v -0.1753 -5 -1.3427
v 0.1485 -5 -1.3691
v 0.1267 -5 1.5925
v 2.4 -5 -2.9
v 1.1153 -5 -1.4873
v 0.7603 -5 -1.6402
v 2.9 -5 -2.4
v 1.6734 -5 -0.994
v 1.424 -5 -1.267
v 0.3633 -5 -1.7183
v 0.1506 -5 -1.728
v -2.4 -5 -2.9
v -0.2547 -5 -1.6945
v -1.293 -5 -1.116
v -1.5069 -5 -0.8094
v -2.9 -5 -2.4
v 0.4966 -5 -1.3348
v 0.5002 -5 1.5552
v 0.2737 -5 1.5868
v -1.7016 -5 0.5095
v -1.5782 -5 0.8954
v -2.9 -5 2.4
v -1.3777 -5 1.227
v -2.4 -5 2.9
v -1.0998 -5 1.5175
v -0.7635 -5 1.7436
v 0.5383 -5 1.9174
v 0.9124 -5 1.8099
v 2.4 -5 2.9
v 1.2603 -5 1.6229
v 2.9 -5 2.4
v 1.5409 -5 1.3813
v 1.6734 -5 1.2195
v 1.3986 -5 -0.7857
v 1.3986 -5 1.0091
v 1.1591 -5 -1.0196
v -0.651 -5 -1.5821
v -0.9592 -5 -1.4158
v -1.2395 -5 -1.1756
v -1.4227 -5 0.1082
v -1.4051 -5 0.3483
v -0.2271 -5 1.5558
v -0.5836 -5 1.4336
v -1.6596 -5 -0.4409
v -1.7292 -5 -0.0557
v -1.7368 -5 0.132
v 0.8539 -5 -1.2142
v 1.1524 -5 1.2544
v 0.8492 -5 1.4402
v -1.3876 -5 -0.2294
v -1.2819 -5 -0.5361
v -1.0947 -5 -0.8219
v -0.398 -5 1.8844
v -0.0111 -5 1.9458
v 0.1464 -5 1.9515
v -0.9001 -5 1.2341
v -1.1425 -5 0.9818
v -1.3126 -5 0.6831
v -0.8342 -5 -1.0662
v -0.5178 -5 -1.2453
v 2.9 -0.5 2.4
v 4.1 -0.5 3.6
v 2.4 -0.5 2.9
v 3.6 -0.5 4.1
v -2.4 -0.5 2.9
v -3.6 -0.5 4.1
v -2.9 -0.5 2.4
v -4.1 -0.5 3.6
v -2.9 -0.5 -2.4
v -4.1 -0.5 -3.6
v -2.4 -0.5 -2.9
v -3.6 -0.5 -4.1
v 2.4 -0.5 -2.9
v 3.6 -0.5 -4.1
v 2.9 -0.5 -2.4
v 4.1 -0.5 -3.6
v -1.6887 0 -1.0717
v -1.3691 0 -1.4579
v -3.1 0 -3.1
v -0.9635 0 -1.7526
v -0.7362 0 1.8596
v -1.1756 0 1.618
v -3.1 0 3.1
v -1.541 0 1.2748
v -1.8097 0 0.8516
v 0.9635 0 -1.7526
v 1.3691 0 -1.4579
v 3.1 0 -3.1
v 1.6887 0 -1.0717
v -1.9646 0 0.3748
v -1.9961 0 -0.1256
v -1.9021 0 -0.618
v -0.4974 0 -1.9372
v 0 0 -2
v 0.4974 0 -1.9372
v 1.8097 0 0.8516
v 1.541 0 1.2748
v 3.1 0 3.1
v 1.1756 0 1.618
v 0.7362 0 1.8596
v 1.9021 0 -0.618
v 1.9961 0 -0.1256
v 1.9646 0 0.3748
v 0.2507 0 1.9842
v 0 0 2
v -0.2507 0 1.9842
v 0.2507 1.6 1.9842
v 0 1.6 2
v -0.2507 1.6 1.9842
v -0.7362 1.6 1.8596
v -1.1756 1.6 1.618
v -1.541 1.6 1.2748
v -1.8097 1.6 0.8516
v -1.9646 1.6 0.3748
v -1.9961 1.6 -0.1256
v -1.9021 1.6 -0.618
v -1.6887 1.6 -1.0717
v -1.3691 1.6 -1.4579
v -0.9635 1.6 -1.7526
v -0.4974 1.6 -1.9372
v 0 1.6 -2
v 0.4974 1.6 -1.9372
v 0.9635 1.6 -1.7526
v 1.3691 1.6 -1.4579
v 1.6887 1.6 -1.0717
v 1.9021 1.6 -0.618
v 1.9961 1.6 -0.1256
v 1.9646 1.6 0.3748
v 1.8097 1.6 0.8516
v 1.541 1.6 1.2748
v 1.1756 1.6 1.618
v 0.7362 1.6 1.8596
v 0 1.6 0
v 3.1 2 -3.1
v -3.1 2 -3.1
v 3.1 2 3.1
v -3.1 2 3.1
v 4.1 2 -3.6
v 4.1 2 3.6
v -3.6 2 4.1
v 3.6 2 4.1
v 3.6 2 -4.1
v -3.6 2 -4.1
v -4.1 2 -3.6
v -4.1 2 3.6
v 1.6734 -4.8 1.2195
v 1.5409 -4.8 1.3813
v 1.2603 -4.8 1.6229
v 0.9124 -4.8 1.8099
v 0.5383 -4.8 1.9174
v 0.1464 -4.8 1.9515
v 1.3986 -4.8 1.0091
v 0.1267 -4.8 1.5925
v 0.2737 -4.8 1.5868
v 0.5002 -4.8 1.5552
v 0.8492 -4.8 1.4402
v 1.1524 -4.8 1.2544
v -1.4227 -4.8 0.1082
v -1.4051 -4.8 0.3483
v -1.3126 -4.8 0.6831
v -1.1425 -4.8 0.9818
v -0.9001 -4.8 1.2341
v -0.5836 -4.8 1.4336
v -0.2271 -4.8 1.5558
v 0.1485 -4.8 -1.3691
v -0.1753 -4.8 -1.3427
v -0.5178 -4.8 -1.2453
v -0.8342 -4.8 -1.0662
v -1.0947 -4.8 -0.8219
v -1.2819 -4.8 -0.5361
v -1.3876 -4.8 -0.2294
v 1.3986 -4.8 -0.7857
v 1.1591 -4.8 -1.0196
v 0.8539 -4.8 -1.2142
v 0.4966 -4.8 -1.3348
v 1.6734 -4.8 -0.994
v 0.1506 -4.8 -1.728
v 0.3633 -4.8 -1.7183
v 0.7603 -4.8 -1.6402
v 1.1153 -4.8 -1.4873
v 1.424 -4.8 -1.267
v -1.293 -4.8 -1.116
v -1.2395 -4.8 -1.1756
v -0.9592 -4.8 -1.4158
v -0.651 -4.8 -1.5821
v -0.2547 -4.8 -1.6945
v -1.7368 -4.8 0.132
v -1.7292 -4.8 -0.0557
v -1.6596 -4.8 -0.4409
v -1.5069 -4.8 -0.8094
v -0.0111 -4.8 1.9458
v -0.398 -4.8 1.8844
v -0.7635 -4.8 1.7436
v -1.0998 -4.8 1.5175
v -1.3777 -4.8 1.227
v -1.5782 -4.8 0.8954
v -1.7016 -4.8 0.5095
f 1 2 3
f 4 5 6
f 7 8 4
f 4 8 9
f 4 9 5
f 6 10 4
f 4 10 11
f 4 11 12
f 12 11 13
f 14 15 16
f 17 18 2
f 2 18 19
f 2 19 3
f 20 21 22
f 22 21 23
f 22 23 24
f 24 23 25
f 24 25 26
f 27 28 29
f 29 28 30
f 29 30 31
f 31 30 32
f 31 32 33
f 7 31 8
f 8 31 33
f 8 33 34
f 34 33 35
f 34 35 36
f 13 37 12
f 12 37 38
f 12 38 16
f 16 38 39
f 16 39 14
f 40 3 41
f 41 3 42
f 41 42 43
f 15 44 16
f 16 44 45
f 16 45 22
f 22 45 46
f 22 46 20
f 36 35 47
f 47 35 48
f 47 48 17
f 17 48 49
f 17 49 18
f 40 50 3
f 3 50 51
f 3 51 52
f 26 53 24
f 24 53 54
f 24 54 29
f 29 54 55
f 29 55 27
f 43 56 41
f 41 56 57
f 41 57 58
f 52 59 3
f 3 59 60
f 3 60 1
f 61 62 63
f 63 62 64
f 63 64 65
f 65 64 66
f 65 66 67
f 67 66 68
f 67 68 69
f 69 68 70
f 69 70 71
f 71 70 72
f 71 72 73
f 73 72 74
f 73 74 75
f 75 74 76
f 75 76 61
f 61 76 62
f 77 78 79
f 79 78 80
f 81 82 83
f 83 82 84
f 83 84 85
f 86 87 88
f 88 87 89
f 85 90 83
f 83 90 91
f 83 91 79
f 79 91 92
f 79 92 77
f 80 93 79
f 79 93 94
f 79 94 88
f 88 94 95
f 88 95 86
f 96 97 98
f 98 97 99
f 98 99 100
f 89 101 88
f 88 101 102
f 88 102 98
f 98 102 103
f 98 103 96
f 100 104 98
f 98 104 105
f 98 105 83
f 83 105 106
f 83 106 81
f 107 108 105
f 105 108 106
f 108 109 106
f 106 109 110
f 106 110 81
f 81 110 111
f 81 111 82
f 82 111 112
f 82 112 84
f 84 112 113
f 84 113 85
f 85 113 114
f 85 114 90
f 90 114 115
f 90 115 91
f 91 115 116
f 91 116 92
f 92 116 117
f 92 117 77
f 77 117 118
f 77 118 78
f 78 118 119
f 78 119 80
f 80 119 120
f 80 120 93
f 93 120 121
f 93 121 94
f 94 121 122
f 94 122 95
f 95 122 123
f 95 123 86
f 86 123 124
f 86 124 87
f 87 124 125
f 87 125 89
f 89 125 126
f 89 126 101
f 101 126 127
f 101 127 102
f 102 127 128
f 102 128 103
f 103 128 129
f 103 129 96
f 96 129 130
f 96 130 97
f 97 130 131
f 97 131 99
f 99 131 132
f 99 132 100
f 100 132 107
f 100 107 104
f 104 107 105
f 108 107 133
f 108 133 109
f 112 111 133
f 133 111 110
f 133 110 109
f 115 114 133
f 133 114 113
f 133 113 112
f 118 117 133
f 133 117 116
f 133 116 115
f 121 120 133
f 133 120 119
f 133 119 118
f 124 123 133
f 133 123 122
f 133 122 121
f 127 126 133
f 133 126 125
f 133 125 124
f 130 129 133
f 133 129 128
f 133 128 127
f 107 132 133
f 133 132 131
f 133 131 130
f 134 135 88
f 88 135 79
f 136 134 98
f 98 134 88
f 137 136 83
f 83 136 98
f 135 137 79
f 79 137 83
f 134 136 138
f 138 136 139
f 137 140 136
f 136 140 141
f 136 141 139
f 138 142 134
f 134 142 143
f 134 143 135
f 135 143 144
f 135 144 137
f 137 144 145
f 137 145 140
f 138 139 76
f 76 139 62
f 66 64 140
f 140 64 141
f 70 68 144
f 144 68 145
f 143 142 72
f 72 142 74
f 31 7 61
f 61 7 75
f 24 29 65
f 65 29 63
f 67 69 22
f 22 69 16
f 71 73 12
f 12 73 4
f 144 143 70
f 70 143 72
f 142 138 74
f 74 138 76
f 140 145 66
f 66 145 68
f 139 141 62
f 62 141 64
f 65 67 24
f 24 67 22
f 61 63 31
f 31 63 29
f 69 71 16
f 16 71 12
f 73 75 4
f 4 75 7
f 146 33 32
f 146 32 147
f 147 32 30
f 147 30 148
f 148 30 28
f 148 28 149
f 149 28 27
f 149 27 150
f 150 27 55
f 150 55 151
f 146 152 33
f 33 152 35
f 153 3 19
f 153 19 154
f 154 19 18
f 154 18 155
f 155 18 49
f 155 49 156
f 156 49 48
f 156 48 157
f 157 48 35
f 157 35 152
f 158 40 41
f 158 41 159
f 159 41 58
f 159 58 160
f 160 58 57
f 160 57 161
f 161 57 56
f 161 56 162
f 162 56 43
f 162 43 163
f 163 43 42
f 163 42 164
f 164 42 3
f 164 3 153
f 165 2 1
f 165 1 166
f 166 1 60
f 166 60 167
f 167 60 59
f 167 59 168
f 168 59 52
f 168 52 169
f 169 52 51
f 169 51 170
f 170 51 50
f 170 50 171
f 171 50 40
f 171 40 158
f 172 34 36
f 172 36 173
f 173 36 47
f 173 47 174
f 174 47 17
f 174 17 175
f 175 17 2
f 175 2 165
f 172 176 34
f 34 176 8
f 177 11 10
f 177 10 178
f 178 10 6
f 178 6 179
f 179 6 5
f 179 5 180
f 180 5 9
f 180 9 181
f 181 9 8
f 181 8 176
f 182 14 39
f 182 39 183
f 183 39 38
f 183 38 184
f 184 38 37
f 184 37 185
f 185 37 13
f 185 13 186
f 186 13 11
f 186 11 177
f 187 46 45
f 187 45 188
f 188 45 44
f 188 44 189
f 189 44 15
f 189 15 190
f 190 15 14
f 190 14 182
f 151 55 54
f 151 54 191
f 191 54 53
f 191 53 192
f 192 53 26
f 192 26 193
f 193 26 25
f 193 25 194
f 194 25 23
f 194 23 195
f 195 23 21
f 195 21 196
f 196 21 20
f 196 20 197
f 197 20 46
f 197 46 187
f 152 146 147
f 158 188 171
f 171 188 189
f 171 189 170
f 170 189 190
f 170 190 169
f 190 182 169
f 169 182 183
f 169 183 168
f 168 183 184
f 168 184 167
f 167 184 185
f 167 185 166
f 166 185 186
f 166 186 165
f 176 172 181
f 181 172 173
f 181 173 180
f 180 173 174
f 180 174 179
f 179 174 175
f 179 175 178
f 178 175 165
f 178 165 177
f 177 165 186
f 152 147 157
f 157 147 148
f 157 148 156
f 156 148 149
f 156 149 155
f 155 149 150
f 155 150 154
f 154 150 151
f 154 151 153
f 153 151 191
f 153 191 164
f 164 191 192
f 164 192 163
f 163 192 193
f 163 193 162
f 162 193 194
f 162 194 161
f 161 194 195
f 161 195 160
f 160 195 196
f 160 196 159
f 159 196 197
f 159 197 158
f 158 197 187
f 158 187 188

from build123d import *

# Parameters (mm, degrees)
SKETCH1_R           = 2
BOSS_EXTRUDE1_DEPTH = 1.6
SKETCH1_3_W         = 8.2
SKETCH1_3_H         = 8.2
SKETCH1_3_W_2       = 6.2
SKETCH1_3_H_2       = 6.2
BOSS_EXTRUDE2_DEPTH = 2
SKETCH1_4_W         = 8.2
SKETCH1_4_H         = 8.2
BOSS_EXTRUDE3_DEPTH = 0.5
SKETCH3_W           = 5.8
SKETCH3_H           = 5.8
BOSS_EXTRUDE4_DEPTH = 4.5
CHAMFER1_SIZE       = 0.5
CUT_EXTRUDE1_DEPTH  = 0.2


with BuildPart() as part:
    # Sketch1 → Boss-Extrude1 (new body)
    with BuildSketch(Plane(origin=(0, 0, 0), x_dir=(1, 0, 0), z_dir=(0, 1, 0))):
        Circle(SKETCH1_R)
    extrude(amount=BOSS_EXTRUDE1_DEPTH)



with BuildPart() as body_2:
    # Sketch1<3> → Boss-Extrude2 (new body)
    with BuildSketch(Plane(origin=(0, 0, 0), x_dir=(1, 0, 0), z_dir=(0, 1, 0))):
        Rectangle(SKETCH1_3_W, SKETCH1_3_H)
        Rectangle(SKETCH1_3_W_2, SKETCH1_3_H_2, mode=Mode.SUBTRACT)
    extrude(amount=BOSS_EXTRUDE2_DEPTH)


with BuildPart() as part_1:
    add(part.part)

    add(body_2.part)  # Boss-Extrude3 merges body 2
    # Sketch1<4> → Boss-Extrude3 (add)
    with BuildSketch(Plane(origin=(0, 0, 0), x_dir=(1, 0, 0), z_dir=(0, 1, 0))):
        Rectangle(SKETCH1_4_W, SKETCH1_4_H)
    extrude(amount=-BOSS_EXTRUDE3_DEPTH)

    # Sketch3 → Boss-Extrude4 (add)
    with BuildSketch(Plane.XZ.offset(0.5)):
        Rectangle(SKETCH3_W, SKETCH3_H)
    extrude(amount=BOSS_EXTRUDE4_DEPTH)

    # Chamfer1
    chamfer1_edges = [part_1.edges().sort_by_distance(p)[0] for p in [
        (-4.1, 0.75, -4.1),
        (4.1, 0.75, -4.1),
        (-4.1, 0.75, 4.1),
        (4.1, 0.75, 4.1),
        (-2.9, -2.75, 2.9),
        (2.9, -2.75, 2.9),
        (-2.9, -2.75, -2.9),
        (2.9, -2.75, -2.9),
    ]]
    chamfer(chamfer1_edges, length=CHAMFER1_SIZE)

    # Sketch4 → Cut-Extrude1 (cut)
    with BuildSketch(Plane.XZ.offset(5)):
        with BuildLine():
            Line((1.673414591, 1.219479822), (1.398574847, 1.009143283))
            add(Edge.make_bspline(
                [(1.398574847, 1.009143283), (1.378968959, 1.032509253), (1.340021512, 1.078926169), (1.27736231, 1.144105713), (1.212060667, 1.205170975), (1.144141545, 1.262412854), (1.072382426, 1.31382962), (0.998521627, 1.362100723), (0.921323582, 1.405368461), (0.814571847, 1.457831447), (0.674923999, 1.512577602), (0.49912916, 1.558480834), (0.315618062, 1.587702009), (0.190420462, 1.590866851), (0.126739911, 1.592476617)],
                knots=[0, 0, 0, 0, 0.757959112, 1.505699292, 2.245454638, 2.979532153, 3.711538275, 4.438200793, 5.171680507, 5.909471876, 7.393775596, 8.890124382, 10.418191784, 12, 12, 12, 12], degree=3))
            add(Edge.make_bspline(
                [(0.126739911, 1.592476617), (0.091656612, 1.592072654), (0.021815619, 1.591268478), (-0.081832854, 1.580659353), (-0.183545905, 1.565748143), (-0.283257371, 1.54362282), (-0.38084033, 1.515650201), (-0.476932732, 1.482224787), (-0.570143332, 1.440869947), (-0.66176157, 1.395161687), (-0.749540781, 1.343534242), (-0.832595829, 1.28722089), (-0.910623797, 1.226851794), (-0.983686409, 1.162200688), (-1.051858357, 1.093558727), (-1.114645668, 1.020194386), (-1.171831078, 0.942342212), (-1.224548103, 0.861028804), (-1.271760837, 0.776491013), (-1.311290716, 0.688415942), (-1.346295838, 0.598311839), (-1.373995081, 0.505160679), (-1.395919598, 0.409617913), (-1.411047261, 0.311427125), (-1.421535732, 0.210793445), (-1.422335909, 0.142584133), (-1.422739255, 0.108201777)],
                knots=[0, 0, 0, 0, 1.054917814, 2.100044995, 3.131103042, 4.146048494, 5.169673617, 6.183595914, 7.203665975, 8.234915748, 9.262203917, 10.264457458, 11.251630812, 12.227803204, 13.197192746, 14.159520551, 15.12972552, 16.100847026, 17.073214652, 18.039054194, 19.002613845, 19.979014051, 20.95965708, 21.949030935, 22.966165397, 24, 24, 24, 24], degree=3))
            add(Edge.make_bspline(
                [(-1.422739255, 0.108201777), (-1.421477436, 0.056470457), (-1.419000022, -0.045097128), (-1.396951688, -0.193867738), (-1.363446597, -0.336388412), (-1.31323102, -0.471768254), (-1.251311969, -0.601676612), (-1.173071358, -0.723915466), (-1.08245482, -0.84033203), (-0.978180401, -0.948174978), (-0.863774585, -1.046688703), (-0.741026673, -1.133439285), (-0.610242385, -1.205754167), (-0.472865755, -1.265930114), (-0.327839641, -1.312186842), (-0.175424839, -1.344750965), (-0.015952844, -1.365993146), (0.093016556, -1.368026834), (0.148474687, -1.369061845)],
                knots=[0, 0, 0, 0, 1.029171465, 2.020641659, 2.987623507, 3.938342917, 4.889210282, 5.84687017, 6.821220943, 7.821438502, 8.827599549, 9.822697543, 10.807740252, 11.797342354, 12.80366471, 13.83203677, 14.896651826, 16, 16, 16, 16], degree=3))
            add(Edge.make_bspline(
                [(0.148474687, -1.369061845), (0.209577376, -1.367373065), (0.329842085, -1.364049143), (0.506210111, -1.335889893), (0.675045877, -1.290231976), (0.836358463, -1.226334053), (0.98969311, -1.143268765), (1.13528977, -1.042570888), (1.27327134, -0.923282555), (1.356242623, -0.832199427), (1.398574847, -0.785728511)],
                knots=[0, 0, 0, 0, 1.028121516, 2.023589091, 2.998037872, 3.967518031, 4.937445131, 5.927275754, 6.942489185, 8, 8, 8, 8], degree=3))
            Line((1.398574847, -0.785728511), (1.673414591, -0.993961685))
            add(Edge.make_bspline(
                [(1.673414591, -0.993961685), (1.651296481, -1.022500136), (1.607166206, -1.079440343), (1.535708189, -1.159712052), (1.460430891, -1.235216088), (1.380775181, -1.305343709), (1.29765739, -1.371498175), (1.209585077, -1.431800006), (1.117716045, -1.48709089), (1.022361566, -1.537717815), (0.923622953, -1.582635062), (0.821618518, -1.62108883), (0.716787943, -1.654213719), (0.609126434, -1.681465656), (0.498410678, -1.70273674), (0.385040203, -1.716956415), (0.268770328, -1.726698329), (0.190328907, -1.727586245), (0.150578052, -1.728036204)],
                knots=[0, 0, 0, 0, 0.986787822, 1.968848986, 2.935600012, 3.899624008, 4.868462664, 5.837806735, 6.815139263, 7.798259679, 8.787526145, 9.778297419, 10.776456485, 11.791383307, 12.812564526, 13.85620153, 14.913611965, 16, 16, 16, 16], degree=3))
            add(Edge.make_bspline(
                [(0.150578052, -1.728036204), (0.112934385, -1.727774211), (0.038498695, -1.727256153), (-0.071400056, -1.718863986), (-0.178389637, -1.707414249), (-0.282164263, -1.690174118), (-0.383290238, -1.669829778), (-0.480850823, -1.642558521), (-0.575806033, -1.612009355), (-0.667774374, -1.576104368), (-0.756834073, -1.535588185), (-0.842697885, -1.489796627), (-0.925326317, -1.439114762), (-1.005531738, -1.384659751), (-1.082129322, -1.32468245), (-1.155782847, -1.260015815), (-1.226905323, -1.190877804), (-1.270908008, -1.141022951), (-1.293031723, -1.115956877)],
                knots=[0, 0, 0, 0, 1.114604814, 2.203992996, 3.262667896, 4.300477797, 5.318619304, 6.316056647, 7.298880507, 8.271930387, 9.238335007, 10.195173496, 11.151986948, 12.108099108, 13.064862484, 14.031167946, 15.010108607, 16, 16, 16, 16], degree=3))
            add(Edge.make_bspline(
                [(-1.293031723, -1.115956877), (-1.328467367, -1.072415688), (-1.398910844, -0.985858978), (-1.489036527, -0.845572996), (-1.566184082, -0.699104787), (-1.628560003, -0.545684859), (-1.677322736, -0.385657471), (-1.711103931, -0.218941957), (-1.733055536, -0.045694015), (-1.735565825, 0.072142774), (-1.736841819, 0.132039918)],
                knots=[0, 0, 0, 0, 0.994628077, 1.977248131, 2.950237994, 3.925870899, 4.908910175, 5.911660606, 6.938484602, 8, 8, 8, 8], degree=3))
            add(Edge.make_bspline(
                [(-1.736841819, 0.132039918), (-1.735286626, 0.194995372), (-1.73222688, 0.318856296), (-1.706231084, 0.500630249), (-1.664412288, 0.674781648), (-1.605015399, 0.840985393), (-1.529710048, 1.000115673), (-1.436683434, 1.150956878), (-1.327016292, 1.294473678), (-1.201568724, 1.428488429), (-1.064001389, 1.551027782), (-0.916682575, 1.658833985), (-0.759900628, 1.748551501), (-0.595382776, 1.823547664), (-0.421897095, 1.881192127), (-0.239813726, 1.921545313), (-0.049474811, 1.94666243), (0.080387615, 1.949837638), (0.146371322, 1.951450976)],
                knots=[0, 0, 0, 0, 1.032925535, 2.032216505, 3.007276963, 3.968222605, 4.92396291, 5.891752235, 6.871517503, 7.883894988, 8.900124299, 9.891468569, 10.874487609, 11.85992873, 12.854644235, 13.869047385, 14.917252991, 16, 16, 16, 16], degree=3))
            add(Edge.make_bspline(
                [(0.146371322, 1.951450976), (0.186585794, 1.950968838), (0.266186291, 1.950014494), (0.383938943, 1.940708351), (0.49858127, 1.925194745), (0.610192252, 1.904078675), (0.719314868, 1.877871354), (0.825115109, 1.843731056), (0.928213796, 1.804694524), (1.027960704, 1.759736058), (1.123877255, 1.709269317), (1.215933573, 1.653853693), (1.303398432, 1.593557888), (1.38688728, 1.528894712), (1.465003491, 1.458496153), (1.53996497, 1.384298557), (1.609226048, 1.304164733), (1.651979243, 1.247759799), (1.673414591, 1.219479822)],
                knots=[0, 0, 0, 0, 1.096760587, 2.17092713, 3.219439832, 4.250915756, 5.268269357, 6.278326846, 7.281116186, 8.274029601, 9.260640565, 10.235837813, 11.203064059, 12.156899882, 13.114053108, 14.069676657, 15.032185724, 16, 16, 16, 16], degree=3))
        make_face()
    extrude(amount=-CUT_EXTRUDE1_DEPTH, mode=Mode.SUBTRACT)


solid = part_1.part
